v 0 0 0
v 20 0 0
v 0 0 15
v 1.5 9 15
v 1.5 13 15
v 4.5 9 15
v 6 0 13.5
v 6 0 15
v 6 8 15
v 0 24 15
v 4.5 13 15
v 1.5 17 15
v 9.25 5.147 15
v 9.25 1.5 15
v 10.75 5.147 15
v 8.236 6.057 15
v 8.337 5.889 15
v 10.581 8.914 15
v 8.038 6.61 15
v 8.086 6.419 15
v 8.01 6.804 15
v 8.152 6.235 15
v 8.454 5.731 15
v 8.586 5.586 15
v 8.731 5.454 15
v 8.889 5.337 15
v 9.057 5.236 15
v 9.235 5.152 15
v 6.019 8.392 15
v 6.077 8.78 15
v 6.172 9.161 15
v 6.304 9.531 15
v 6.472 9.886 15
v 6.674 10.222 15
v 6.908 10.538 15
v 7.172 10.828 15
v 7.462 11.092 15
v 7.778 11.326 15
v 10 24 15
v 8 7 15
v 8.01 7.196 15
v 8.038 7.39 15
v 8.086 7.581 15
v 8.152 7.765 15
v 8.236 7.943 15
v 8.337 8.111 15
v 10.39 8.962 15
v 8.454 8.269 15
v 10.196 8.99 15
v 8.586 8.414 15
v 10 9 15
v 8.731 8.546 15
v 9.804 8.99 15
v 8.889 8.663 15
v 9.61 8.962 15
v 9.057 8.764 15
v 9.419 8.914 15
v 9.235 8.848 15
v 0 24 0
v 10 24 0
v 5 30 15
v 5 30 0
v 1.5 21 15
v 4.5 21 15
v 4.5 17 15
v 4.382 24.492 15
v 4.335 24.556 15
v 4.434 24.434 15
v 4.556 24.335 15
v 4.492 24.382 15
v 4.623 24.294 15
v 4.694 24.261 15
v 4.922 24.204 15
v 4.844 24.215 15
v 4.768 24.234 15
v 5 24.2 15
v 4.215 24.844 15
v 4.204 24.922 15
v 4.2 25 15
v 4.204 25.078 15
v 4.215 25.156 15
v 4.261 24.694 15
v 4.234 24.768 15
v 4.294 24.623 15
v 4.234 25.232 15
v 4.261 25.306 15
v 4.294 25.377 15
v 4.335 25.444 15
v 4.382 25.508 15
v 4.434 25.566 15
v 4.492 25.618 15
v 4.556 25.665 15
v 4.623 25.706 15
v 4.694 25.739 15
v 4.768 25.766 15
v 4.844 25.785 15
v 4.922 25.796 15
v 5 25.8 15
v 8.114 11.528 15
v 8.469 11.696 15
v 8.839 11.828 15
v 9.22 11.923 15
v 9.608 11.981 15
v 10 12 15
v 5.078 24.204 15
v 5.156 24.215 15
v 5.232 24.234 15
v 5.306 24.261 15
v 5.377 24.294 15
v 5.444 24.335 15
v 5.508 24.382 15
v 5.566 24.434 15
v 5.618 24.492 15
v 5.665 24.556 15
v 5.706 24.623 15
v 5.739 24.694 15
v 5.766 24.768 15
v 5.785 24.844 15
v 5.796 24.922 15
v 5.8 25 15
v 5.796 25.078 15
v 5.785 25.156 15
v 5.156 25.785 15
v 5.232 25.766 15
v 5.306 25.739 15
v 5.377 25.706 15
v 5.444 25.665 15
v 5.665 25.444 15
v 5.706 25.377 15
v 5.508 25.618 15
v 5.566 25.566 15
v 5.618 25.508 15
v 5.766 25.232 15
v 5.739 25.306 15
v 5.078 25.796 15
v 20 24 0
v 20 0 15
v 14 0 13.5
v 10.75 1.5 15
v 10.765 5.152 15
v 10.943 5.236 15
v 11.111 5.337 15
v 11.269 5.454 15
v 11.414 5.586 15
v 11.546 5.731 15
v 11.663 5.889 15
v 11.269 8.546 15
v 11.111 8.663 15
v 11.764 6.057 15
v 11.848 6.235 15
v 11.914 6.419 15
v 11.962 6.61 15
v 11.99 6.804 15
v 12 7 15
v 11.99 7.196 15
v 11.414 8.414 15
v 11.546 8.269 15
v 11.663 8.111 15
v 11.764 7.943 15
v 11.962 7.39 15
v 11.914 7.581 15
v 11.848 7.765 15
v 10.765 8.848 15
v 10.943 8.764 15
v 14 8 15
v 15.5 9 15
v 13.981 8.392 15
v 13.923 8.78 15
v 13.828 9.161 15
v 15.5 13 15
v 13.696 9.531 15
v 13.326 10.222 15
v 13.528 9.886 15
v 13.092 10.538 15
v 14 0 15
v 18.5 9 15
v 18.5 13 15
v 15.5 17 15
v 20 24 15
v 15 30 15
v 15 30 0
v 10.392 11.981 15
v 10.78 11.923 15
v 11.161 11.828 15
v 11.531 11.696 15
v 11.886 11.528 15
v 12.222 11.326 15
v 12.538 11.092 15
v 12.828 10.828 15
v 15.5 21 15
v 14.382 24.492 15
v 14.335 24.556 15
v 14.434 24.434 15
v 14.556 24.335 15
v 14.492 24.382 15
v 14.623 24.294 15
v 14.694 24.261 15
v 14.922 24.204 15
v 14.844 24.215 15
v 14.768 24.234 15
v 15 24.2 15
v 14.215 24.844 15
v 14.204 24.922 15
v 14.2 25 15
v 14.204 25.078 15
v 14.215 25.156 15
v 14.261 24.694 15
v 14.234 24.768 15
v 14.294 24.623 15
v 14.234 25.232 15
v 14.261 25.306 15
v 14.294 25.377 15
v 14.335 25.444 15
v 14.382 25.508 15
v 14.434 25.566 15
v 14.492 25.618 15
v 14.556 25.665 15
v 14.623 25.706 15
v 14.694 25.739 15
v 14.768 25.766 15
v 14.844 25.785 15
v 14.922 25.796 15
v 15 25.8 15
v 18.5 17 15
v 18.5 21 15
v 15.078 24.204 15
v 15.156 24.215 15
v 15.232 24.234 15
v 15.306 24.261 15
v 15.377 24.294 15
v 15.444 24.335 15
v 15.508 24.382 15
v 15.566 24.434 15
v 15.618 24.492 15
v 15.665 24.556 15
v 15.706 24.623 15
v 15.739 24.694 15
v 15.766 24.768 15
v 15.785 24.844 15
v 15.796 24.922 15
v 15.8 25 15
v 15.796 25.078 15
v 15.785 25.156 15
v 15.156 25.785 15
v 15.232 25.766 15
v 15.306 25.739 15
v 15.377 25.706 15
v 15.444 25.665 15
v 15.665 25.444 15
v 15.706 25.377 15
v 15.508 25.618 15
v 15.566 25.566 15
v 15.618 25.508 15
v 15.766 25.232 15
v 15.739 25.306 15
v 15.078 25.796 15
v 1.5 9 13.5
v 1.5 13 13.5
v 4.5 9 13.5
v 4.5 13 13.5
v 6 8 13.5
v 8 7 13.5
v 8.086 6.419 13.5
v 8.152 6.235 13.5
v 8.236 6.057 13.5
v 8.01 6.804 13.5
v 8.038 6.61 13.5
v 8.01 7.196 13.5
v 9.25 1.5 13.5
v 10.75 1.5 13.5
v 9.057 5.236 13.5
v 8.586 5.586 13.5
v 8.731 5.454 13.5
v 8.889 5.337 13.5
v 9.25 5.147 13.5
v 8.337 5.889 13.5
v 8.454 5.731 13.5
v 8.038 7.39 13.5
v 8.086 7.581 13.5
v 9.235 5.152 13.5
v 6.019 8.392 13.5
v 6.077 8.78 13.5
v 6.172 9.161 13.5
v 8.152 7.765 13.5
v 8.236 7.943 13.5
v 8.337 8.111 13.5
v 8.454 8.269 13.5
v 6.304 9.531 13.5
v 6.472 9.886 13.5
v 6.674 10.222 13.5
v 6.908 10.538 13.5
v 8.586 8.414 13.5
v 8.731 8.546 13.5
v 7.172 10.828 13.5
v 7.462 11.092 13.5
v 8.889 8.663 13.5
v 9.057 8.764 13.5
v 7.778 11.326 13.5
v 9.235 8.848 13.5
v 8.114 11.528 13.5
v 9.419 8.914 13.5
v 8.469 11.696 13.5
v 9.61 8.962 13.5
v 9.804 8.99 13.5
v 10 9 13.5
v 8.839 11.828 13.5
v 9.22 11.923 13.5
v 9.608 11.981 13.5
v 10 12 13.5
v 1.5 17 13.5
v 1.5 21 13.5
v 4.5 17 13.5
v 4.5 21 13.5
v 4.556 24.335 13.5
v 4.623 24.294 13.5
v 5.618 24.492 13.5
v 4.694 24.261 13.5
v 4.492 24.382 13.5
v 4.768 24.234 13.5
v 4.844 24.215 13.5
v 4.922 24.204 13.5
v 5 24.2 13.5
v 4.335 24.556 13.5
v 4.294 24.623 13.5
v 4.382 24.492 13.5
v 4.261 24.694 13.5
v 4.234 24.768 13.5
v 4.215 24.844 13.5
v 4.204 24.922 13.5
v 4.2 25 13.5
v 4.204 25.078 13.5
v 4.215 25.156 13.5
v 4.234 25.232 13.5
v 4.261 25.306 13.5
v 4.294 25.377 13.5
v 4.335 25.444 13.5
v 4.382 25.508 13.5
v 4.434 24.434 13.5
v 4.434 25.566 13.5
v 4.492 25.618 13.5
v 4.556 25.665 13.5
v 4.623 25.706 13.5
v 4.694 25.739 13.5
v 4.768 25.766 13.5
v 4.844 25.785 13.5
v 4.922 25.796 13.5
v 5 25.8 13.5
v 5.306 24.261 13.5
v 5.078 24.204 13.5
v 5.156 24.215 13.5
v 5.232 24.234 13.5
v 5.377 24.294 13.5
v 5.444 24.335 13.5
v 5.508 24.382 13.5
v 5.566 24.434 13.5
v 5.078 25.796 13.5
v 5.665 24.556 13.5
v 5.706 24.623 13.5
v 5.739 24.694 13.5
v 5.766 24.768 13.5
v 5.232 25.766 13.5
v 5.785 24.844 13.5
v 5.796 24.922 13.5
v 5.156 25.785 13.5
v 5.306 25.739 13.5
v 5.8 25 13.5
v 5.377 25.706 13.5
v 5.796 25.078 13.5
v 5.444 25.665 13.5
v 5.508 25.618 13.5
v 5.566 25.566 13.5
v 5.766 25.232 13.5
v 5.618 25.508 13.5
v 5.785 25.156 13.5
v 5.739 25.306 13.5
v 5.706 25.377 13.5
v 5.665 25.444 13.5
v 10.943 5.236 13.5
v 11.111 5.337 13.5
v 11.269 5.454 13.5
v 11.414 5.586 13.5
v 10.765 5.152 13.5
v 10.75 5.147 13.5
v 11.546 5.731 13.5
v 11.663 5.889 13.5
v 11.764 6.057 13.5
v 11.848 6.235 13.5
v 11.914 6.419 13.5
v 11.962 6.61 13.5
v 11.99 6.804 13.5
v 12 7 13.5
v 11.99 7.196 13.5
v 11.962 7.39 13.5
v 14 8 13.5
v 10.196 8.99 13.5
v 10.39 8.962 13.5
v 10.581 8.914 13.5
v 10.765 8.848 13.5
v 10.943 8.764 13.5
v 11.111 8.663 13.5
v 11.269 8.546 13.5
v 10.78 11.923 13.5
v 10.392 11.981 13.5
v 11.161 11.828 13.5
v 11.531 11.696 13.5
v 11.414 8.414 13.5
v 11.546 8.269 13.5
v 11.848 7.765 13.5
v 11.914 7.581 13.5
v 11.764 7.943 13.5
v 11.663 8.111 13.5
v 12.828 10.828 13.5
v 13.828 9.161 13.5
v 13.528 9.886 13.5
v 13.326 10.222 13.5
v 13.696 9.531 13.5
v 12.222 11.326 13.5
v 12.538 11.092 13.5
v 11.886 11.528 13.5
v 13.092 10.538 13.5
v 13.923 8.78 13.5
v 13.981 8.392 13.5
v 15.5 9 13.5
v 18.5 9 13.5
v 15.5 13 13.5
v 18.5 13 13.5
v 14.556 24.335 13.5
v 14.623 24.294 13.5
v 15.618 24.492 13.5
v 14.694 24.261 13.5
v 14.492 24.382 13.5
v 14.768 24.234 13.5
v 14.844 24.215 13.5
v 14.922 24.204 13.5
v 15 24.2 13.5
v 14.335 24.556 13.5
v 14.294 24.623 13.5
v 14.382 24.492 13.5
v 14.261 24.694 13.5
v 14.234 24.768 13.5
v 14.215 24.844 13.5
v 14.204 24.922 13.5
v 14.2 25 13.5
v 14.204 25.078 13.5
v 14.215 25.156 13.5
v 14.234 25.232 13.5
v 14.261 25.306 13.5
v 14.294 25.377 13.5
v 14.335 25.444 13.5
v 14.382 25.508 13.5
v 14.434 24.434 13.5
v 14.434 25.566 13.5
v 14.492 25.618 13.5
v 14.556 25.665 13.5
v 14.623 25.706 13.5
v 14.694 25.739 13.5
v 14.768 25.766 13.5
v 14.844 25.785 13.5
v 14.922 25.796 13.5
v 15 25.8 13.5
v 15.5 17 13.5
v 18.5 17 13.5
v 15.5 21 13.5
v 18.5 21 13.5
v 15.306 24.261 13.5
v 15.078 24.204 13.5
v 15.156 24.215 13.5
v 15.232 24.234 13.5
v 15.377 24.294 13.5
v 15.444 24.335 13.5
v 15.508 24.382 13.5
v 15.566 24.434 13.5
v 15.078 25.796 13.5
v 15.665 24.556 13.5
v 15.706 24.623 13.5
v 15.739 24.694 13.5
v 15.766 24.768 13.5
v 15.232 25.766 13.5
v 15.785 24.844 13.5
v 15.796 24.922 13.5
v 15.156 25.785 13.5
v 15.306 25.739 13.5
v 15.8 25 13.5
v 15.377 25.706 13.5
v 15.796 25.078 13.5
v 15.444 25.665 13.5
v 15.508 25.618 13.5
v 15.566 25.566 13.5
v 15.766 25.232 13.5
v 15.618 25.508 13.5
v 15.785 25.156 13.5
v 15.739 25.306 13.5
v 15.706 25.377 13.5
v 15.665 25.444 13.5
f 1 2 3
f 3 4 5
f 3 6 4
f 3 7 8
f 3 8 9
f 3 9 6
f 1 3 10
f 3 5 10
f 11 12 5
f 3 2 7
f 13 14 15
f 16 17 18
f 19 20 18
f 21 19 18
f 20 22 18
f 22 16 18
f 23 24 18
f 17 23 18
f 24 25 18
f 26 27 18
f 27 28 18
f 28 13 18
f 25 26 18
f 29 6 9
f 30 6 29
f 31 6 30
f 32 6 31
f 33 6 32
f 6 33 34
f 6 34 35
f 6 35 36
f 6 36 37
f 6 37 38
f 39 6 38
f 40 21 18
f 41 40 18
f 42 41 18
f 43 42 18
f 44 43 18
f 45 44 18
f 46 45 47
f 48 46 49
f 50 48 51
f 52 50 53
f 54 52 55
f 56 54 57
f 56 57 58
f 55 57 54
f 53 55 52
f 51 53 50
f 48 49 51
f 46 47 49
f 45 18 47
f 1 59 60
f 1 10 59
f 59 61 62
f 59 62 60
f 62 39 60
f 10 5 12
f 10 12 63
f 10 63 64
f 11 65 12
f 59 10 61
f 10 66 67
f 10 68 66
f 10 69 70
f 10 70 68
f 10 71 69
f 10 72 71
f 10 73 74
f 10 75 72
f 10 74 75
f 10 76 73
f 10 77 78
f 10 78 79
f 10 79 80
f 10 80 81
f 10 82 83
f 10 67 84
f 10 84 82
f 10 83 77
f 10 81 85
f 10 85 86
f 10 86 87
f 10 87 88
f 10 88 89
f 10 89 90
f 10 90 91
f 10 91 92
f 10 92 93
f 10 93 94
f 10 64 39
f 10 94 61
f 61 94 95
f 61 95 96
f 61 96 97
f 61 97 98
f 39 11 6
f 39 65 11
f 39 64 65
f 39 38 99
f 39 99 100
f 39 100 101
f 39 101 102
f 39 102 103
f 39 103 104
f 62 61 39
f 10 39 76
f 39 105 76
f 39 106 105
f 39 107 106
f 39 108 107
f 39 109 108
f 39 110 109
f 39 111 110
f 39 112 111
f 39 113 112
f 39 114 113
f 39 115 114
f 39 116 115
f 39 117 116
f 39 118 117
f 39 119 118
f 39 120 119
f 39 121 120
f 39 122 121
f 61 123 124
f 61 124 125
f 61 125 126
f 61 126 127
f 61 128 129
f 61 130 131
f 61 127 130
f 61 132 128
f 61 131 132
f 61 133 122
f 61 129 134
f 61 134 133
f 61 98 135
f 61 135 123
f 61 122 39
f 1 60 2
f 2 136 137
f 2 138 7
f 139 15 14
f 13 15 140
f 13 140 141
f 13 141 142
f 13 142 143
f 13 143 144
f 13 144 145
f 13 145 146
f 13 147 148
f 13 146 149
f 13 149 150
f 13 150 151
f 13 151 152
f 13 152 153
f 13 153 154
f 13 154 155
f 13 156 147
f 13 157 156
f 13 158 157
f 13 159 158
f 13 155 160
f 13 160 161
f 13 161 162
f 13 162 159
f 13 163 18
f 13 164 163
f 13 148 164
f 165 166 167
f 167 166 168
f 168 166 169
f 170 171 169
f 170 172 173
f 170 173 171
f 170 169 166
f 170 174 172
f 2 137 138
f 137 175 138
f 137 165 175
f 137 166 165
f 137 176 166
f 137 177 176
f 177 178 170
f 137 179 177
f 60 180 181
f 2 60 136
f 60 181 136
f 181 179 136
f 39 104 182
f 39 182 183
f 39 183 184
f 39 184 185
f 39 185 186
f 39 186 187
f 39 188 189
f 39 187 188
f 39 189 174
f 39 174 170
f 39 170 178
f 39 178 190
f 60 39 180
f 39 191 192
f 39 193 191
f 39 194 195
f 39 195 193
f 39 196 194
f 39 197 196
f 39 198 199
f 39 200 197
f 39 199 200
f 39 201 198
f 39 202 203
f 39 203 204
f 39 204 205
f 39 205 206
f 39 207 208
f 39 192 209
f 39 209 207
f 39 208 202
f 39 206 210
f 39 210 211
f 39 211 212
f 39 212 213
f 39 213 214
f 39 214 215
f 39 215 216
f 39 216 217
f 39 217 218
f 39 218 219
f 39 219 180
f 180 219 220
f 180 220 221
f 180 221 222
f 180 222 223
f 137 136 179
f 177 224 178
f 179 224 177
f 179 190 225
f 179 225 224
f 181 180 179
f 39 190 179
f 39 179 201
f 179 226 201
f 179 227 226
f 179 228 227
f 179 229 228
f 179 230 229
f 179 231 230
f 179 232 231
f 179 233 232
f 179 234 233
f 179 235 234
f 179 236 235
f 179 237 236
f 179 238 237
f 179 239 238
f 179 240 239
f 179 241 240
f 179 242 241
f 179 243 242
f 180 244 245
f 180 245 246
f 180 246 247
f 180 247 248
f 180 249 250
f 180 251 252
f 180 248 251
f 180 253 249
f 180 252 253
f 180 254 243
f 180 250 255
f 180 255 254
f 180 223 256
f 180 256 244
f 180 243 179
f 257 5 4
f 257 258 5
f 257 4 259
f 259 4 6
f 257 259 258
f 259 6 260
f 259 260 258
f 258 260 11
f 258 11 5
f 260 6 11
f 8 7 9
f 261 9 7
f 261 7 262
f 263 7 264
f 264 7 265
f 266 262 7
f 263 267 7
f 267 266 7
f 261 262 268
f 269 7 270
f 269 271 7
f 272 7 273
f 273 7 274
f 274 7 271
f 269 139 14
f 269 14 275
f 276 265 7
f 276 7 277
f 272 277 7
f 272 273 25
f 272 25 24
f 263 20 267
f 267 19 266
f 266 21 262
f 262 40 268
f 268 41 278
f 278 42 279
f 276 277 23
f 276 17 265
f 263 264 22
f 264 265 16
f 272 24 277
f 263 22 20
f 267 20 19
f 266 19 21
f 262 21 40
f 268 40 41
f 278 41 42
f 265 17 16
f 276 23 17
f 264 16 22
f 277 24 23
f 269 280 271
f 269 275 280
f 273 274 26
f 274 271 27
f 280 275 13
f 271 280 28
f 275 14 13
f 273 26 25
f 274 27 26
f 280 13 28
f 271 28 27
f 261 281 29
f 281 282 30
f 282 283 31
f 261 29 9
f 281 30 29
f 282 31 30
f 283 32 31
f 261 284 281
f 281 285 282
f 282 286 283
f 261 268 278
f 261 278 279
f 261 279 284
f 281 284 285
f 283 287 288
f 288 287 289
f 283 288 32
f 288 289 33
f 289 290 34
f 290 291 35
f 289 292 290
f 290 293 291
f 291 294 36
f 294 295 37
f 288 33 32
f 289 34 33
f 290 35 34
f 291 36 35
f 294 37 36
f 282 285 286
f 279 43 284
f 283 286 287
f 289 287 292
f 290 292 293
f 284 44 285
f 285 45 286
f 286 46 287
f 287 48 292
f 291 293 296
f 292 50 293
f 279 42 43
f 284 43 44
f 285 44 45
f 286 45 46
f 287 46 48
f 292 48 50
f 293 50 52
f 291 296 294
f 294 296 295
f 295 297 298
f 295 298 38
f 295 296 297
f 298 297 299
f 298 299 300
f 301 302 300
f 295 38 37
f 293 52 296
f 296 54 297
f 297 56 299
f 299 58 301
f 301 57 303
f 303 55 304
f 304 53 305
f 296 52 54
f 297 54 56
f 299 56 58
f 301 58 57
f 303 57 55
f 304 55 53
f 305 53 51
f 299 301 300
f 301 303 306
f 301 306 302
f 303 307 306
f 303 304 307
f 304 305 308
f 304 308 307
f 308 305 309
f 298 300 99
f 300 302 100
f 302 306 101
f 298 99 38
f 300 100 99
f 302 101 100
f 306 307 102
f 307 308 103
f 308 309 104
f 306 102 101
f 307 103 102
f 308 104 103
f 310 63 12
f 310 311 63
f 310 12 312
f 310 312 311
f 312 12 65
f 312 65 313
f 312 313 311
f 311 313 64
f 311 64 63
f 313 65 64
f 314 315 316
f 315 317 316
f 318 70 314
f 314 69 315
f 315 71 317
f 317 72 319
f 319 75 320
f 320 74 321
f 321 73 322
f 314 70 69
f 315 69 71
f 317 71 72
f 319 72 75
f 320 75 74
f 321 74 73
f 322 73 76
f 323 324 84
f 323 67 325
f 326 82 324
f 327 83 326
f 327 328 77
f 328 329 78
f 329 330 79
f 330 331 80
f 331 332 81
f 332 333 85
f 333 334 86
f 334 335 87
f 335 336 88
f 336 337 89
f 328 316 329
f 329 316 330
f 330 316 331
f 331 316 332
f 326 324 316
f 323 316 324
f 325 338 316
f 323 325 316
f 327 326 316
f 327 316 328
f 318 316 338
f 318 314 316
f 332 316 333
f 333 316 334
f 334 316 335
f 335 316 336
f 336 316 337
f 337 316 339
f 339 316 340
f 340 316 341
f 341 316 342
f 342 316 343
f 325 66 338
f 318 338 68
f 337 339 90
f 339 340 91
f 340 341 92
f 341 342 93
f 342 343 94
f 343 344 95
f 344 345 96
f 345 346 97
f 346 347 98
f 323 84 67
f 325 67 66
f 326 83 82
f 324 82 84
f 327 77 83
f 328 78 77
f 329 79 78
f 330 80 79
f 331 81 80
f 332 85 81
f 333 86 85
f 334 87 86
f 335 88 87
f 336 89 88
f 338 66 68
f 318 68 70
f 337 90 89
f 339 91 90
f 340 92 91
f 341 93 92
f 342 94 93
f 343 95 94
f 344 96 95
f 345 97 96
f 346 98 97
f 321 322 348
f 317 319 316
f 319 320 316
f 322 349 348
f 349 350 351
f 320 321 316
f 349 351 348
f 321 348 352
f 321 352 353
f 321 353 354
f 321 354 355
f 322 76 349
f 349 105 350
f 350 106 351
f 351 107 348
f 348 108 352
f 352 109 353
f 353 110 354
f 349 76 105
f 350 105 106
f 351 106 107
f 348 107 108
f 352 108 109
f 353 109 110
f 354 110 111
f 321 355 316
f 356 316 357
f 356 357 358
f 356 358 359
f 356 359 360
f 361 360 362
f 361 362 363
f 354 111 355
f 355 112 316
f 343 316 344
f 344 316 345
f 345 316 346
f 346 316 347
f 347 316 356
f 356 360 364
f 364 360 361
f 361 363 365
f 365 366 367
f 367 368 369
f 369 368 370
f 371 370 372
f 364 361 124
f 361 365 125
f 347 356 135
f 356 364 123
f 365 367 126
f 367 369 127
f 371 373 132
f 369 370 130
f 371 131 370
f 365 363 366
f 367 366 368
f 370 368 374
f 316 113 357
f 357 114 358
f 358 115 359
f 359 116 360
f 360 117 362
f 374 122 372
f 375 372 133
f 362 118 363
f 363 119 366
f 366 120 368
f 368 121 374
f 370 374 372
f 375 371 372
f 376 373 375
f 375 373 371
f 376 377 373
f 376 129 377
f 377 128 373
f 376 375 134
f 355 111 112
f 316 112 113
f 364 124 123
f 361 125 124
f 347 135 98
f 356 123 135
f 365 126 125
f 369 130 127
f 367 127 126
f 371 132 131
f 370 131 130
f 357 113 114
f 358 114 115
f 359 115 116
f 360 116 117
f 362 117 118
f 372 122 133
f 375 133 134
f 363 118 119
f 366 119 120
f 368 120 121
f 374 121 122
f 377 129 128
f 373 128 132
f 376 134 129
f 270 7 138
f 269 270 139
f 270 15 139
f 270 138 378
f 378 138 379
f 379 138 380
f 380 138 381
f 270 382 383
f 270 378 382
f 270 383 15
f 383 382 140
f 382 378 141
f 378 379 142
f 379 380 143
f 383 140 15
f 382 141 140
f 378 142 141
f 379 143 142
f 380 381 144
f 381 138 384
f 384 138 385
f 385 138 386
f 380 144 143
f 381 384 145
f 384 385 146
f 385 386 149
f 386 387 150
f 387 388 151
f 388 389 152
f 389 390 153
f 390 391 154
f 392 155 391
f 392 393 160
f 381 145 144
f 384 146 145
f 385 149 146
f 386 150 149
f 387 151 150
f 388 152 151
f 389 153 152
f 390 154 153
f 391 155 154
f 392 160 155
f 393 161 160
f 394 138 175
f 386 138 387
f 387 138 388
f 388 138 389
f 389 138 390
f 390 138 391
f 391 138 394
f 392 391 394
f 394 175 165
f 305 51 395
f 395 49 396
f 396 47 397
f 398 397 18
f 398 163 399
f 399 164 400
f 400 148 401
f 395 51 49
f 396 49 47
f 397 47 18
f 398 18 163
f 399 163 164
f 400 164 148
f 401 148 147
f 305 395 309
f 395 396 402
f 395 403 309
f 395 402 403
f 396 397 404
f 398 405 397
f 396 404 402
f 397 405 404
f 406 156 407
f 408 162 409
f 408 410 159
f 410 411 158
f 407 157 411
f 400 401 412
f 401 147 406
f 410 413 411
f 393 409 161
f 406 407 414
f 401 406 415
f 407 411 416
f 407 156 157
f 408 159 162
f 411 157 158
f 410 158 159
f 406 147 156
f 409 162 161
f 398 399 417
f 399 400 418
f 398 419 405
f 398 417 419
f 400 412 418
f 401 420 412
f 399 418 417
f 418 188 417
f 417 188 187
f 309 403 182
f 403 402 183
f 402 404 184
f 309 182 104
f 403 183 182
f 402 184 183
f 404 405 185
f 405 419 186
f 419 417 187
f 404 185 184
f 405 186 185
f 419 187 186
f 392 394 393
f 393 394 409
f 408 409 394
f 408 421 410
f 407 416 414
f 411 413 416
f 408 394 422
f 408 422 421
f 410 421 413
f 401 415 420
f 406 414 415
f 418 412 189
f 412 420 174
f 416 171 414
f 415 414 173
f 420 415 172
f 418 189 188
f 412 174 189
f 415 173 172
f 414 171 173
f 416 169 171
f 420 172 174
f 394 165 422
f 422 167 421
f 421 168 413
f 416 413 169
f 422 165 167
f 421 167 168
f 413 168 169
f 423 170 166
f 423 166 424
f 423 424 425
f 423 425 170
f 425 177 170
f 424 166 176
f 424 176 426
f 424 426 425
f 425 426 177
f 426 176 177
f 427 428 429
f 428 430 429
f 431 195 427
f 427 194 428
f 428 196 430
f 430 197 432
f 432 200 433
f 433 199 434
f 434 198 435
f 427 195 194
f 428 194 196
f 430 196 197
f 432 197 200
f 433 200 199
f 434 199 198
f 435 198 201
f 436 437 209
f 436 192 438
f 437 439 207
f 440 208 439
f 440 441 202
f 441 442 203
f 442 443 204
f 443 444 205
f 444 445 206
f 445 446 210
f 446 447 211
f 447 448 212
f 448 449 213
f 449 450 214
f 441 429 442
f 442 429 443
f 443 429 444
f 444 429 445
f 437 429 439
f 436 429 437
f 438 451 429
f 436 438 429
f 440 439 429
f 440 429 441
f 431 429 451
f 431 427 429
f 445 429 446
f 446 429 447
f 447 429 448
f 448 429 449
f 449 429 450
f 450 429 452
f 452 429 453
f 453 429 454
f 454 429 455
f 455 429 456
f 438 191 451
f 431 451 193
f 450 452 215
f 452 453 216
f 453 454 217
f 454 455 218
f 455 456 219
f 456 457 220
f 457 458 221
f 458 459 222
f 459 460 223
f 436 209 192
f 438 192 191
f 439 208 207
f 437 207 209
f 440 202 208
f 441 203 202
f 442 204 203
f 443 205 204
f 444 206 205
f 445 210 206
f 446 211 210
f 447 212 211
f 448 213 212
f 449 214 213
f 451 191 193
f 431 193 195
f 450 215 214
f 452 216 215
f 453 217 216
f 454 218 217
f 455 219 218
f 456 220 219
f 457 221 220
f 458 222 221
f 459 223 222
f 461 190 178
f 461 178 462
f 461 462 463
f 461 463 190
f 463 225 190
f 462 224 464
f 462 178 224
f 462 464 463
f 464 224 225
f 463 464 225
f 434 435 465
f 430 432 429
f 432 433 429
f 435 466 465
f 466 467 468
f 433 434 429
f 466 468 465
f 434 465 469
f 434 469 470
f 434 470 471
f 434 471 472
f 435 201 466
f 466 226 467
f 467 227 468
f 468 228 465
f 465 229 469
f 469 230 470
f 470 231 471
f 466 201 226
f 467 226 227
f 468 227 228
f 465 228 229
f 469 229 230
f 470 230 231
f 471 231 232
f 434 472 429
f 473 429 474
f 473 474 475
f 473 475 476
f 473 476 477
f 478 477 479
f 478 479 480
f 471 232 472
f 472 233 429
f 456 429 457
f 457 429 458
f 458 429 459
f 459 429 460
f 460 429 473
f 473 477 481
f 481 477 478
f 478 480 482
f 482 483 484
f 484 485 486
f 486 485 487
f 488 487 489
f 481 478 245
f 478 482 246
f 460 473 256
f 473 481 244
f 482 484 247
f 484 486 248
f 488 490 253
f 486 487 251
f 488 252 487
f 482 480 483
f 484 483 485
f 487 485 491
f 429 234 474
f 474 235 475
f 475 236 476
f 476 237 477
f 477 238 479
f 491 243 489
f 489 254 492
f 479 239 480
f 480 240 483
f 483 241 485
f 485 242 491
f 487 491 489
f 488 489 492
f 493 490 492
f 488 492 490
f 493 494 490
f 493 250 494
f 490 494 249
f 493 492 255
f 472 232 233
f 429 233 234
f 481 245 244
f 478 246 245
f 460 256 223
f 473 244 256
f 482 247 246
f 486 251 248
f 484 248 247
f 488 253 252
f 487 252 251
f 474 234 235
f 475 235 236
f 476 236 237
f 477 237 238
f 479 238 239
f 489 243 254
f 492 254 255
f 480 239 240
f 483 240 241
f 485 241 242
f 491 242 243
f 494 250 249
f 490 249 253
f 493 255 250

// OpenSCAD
// Facade game piece in mm: X width, Y height, Z depth.
// Place Z=0 flat on the build plate; all recessed details are 1.5 mm deep.
$fn=64;
module rect(x,y,w,h){translate([x,y]) square([w,h]);}
module disk(x,y,r){translate([x,y]) circle(r=r);}
module line(a,b,w=1.5){hull(){translate(a) circle(d=w);translate(b) circle(d=w);}}
module path(points,w=1.5){for(i=[0:len(points)-2]) line(points[i],points[i+1],w);}
module cross_icon(x,y,size=6,bar=1.8){union(){rect(x-size/2,y-bar/2,size,bar);rect(x-bar/2,y-size/2,bar,size);}}
module tank(x,y,w,h){union(){rect(x,y,w,h-w/2);disk(x+w/2,y+h-w/2,w/2);}}
module ring(x,y,r,w=1.3){difference(){disk(x,y,r);disk(x,y,r-w);}}

module silhouette(){
polygon([[0,0],[20,0],[20,24],[15,30],[10,24],[5,30],[0,24]]);
}
module facade_recesses(){union(){
// Garden arch and raised tree, both connected to the solid body.
difference(){union(){rect(6,0,8,8);disk(10,8,4);}union(){rect(9.25,1.5,1.5,5);disk(10,7,2);}}
for(x=[1.5,15.5]) for(y=[9,17]) rect(x,y,3,4);
for(x=[4,14]) disk(x+1,25,0.8);
}}
difference(){
 linear_extrude(height=15) silhouette();
 translate([0,0,13.5]) linear_extrude(height=2) facade_recesses();
}
